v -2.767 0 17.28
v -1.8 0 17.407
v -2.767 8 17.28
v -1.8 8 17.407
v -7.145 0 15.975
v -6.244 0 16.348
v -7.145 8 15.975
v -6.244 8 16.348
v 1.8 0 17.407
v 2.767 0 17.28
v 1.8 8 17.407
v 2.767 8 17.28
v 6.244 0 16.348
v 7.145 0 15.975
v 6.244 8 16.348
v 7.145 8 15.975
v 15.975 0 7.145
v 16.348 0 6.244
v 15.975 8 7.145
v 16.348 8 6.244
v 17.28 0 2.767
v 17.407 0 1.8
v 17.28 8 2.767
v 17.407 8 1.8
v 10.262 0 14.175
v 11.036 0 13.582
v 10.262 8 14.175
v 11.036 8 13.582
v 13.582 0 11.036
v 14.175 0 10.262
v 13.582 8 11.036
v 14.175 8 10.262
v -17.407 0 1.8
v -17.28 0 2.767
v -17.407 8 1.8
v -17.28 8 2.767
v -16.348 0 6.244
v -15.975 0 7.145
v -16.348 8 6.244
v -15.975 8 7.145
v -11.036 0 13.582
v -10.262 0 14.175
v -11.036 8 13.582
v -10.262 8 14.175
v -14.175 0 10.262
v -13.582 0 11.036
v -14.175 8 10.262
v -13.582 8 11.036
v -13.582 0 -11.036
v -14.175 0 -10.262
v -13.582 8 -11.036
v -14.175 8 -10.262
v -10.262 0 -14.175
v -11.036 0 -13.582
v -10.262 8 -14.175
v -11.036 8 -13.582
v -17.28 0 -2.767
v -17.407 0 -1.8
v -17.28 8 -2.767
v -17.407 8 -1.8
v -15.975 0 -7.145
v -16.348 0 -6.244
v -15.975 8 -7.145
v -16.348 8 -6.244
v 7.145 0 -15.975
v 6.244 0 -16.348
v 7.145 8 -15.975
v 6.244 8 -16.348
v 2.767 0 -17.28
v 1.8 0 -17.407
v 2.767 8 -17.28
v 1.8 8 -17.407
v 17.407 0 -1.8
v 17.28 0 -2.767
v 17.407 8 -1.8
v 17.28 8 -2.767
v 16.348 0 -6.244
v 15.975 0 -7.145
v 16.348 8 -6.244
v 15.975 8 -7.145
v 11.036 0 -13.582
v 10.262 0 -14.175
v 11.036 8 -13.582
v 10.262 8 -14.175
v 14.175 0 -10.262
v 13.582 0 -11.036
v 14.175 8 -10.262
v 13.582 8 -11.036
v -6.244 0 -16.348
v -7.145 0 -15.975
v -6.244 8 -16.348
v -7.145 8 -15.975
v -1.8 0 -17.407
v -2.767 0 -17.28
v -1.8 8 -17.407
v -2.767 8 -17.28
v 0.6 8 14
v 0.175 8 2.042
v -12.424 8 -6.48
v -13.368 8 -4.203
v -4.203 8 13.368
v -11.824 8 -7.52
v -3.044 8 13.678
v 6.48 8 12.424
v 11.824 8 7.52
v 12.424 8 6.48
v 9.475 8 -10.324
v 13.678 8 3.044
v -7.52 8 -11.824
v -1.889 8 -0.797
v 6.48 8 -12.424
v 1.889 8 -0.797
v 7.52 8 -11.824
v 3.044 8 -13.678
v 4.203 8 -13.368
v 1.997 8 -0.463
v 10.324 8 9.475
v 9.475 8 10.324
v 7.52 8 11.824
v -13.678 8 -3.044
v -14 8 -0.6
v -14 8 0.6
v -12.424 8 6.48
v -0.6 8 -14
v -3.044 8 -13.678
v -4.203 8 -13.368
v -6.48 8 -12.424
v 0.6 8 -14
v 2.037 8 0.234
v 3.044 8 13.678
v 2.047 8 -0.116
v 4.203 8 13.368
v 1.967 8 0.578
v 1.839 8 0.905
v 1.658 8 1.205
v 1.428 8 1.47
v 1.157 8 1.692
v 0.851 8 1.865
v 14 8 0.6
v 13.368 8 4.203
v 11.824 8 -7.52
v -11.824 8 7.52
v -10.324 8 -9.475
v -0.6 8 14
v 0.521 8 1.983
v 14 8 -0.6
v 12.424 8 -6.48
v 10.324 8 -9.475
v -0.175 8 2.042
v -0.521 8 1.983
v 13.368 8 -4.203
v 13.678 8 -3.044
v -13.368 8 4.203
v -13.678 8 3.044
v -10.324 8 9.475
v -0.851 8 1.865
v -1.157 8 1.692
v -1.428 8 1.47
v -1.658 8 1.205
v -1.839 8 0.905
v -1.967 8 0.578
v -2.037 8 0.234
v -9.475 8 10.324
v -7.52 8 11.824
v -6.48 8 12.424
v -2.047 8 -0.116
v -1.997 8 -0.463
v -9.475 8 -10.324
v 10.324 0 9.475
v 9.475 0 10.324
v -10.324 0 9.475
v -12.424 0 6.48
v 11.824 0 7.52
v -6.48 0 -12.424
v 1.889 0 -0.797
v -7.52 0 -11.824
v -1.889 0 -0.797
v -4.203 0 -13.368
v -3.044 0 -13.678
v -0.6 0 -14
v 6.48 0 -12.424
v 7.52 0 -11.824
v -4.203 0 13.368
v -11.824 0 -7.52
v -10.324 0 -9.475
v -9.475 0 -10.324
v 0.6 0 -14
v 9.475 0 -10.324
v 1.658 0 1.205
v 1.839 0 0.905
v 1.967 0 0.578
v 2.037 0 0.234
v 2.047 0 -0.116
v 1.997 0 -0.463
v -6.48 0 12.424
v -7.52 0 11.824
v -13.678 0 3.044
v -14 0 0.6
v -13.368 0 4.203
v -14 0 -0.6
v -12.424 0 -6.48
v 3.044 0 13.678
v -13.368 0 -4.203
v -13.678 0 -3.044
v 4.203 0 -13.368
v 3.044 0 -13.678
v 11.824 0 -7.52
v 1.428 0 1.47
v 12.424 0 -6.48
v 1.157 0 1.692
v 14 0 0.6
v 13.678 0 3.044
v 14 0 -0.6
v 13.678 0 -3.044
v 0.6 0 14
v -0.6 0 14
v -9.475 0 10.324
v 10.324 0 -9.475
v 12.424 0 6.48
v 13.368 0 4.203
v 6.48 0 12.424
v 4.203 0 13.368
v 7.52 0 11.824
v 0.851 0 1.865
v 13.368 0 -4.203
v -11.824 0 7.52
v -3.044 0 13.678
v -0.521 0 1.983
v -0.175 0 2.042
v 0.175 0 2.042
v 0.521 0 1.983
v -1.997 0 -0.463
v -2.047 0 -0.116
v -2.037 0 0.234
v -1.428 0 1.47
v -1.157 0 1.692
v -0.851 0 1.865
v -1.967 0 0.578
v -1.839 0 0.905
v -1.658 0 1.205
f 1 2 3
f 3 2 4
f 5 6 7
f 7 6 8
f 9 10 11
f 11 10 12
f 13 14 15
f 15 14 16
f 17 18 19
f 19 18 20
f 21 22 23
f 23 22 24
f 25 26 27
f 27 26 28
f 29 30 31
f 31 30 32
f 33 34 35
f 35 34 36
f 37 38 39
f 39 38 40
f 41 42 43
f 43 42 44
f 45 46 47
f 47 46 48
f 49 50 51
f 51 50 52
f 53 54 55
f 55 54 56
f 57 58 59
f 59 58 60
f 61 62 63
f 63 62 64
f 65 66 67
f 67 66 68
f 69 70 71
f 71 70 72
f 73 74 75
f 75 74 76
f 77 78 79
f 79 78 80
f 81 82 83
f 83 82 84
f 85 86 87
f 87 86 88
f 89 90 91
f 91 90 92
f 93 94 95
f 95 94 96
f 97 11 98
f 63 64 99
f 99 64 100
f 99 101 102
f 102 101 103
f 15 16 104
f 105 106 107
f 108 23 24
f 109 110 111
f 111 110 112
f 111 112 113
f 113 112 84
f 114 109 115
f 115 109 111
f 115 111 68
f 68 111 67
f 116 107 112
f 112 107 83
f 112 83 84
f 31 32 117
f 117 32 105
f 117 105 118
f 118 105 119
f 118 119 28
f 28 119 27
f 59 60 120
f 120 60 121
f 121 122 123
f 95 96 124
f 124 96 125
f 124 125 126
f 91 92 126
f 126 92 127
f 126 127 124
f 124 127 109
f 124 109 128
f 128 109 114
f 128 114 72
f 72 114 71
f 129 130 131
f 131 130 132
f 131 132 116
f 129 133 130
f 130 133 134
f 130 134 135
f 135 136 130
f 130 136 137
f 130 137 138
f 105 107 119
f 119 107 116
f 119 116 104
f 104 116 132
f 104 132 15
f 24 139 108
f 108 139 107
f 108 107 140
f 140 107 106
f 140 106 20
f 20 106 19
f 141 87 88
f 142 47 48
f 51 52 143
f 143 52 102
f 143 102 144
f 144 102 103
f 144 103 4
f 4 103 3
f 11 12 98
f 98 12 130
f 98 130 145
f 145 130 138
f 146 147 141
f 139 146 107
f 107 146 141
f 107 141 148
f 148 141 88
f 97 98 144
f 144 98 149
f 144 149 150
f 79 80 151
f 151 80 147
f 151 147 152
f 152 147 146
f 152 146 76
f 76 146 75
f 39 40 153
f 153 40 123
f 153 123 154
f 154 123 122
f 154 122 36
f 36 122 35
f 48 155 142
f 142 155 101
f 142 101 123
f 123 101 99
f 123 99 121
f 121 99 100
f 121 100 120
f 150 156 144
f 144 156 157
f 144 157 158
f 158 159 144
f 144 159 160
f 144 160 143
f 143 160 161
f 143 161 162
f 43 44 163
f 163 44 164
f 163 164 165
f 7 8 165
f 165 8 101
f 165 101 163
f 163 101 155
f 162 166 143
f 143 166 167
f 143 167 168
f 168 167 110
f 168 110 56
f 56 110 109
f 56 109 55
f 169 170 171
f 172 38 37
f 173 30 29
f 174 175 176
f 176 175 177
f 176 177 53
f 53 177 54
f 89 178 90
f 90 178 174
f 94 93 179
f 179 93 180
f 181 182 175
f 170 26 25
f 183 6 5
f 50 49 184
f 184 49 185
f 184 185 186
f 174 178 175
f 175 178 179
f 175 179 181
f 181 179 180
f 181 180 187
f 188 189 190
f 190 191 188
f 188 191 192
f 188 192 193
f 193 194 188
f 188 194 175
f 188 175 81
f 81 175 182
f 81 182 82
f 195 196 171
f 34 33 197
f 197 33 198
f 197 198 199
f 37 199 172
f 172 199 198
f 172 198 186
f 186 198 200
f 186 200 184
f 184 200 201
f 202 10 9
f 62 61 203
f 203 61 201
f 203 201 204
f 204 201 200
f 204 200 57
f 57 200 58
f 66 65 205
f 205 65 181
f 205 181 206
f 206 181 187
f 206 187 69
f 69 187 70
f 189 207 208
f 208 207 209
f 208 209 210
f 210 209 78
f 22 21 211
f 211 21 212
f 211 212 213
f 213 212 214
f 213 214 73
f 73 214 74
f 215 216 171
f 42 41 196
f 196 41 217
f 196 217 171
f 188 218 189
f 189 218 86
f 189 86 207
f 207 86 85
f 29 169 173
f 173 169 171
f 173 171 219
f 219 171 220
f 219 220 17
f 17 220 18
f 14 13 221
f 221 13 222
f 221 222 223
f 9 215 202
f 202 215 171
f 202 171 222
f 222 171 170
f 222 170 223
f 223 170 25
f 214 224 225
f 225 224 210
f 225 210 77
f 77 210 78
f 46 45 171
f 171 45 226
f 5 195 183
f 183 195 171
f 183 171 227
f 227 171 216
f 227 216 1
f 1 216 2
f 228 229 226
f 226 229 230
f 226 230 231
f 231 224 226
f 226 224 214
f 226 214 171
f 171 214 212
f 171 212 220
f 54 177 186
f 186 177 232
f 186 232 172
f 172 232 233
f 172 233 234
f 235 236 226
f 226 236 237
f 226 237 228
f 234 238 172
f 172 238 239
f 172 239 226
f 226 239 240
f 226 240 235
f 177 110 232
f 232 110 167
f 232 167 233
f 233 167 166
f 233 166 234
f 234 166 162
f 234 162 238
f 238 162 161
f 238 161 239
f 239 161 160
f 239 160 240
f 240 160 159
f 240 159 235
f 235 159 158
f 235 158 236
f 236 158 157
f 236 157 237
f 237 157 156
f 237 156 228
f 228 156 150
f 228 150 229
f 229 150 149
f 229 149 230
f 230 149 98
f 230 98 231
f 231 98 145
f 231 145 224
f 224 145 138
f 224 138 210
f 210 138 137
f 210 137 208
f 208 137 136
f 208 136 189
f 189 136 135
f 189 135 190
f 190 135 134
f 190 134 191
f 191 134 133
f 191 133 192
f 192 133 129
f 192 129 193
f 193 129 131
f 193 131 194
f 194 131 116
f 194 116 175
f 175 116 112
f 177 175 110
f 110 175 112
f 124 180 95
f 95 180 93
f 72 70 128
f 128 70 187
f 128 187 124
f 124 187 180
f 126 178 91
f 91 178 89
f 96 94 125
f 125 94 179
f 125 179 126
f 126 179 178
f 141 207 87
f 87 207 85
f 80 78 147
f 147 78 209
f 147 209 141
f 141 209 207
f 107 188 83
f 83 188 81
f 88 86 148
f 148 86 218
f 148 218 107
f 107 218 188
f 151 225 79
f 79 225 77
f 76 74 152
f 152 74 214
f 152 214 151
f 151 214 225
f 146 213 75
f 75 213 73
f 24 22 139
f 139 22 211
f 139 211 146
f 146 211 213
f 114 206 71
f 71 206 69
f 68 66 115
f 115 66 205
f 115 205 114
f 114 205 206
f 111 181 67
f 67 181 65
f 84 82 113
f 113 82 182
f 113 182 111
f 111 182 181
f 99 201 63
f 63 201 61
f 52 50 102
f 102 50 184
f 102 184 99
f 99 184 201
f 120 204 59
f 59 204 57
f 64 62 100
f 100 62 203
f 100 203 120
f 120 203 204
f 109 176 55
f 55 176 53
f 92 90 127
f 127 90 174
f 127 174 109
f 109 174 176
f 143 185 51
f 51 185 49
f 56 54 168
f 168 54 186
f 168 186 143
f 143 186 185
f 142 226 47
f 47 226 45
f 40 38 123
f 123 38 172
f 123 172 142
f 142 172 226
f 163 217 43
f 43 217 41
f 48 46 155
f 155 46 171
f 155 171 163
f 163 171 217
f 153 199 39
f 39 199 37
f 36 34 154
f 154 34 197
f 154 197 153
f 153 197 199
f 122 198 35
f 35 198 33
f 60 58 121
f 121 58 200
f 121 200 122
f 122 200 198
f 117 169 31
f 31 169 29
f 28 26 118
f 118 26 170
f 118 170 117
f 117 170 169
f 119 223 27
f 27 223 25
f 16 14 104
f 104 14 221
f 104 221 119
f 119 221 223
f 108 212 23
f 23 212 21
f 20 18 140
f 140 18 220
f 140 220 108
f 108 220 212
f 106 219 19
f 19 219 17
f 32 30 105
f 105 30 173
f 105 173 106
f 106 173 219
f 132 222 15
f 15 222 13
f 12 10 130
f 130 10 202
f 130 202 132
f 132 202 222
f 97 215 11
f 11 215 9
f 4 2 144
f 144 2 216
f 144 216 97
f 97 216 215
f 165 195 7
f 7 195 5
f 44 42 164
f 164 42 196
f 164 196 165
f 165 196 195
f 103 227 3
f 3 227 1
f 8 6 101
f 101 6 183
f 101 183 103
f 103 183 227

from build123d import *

# Parameters (mm, degrees)
SKETCH1_R           = 17.5
BOSS_EXTRUDE1_DEPTH = 8
CUT_EXTRUDE1_DEPTH  = 9
CUT_EXTRUDE2_DEPTH  = 10
CIRPATTERN1_COUNT   = 24


with BuildPart() as part:
    # Sketch1 → Boss-Extrude1 (new body)
    with BuildSketch(Plane(origin=(0, 0, 0), x_dir=(1, 0, 0), z_dir=(0, 1, 0))):
        Circle(SKETCH1_R)
    extrude(amount=BOSS_EXTRUDE1_DEPTH)

    # Sketch2 → Cut-Extrude1 (cut, through all)
    with BuildSketch(Plane(origin=(0, 8, 0), x_dir=(1, 0, 0), z_dir=(0, 1, 0))):
        with BuildLine():
            Line((-1.88867937, 0.797113692), (1.88867937, 0.797113692))
            ThreePointArc((1.88867937, 0.797113692), (0, -2.05), (-1.88867937, 0.797113692))
        make_face()
    extrude(amount=-CUT_EXTRUDE1_DEPTH, mode=Mode.SUBTRACT)

    # Sketch3 → Cut-Extrude2 (cut)
    with BuildSketch(Plane(origin=(0, 8, 0), x_dir=(1, 0, 0), z_dir=(0, 1, 0))):
        Polygon((0, 14), (0.6, 14), (1.8, 17.407182426), (1.8, 19.314701451), (-1.8, 19.314701451), (-1.8, 17.407182426), (-0.6, 14), align=None)
    cut_extrude2 = extrude(amount=-CUT_EXTRUDE2_DEPTH, mode=Mode.SUBTRACT)

    # CirPattern1: Cut-Extrude2 ×24 about axis
    cirpattern1_axis = Axis((0, 0, 0), (0, 1, 0))
    for i in range(1, CIRPATTERN1_COUNT):
        add(cut_extrude2.rotate(cirpattern1_axis, i * 360 / CIRPATTERN1_COUNT), mode=Mode.SUBTRACT)


solid = part.part
